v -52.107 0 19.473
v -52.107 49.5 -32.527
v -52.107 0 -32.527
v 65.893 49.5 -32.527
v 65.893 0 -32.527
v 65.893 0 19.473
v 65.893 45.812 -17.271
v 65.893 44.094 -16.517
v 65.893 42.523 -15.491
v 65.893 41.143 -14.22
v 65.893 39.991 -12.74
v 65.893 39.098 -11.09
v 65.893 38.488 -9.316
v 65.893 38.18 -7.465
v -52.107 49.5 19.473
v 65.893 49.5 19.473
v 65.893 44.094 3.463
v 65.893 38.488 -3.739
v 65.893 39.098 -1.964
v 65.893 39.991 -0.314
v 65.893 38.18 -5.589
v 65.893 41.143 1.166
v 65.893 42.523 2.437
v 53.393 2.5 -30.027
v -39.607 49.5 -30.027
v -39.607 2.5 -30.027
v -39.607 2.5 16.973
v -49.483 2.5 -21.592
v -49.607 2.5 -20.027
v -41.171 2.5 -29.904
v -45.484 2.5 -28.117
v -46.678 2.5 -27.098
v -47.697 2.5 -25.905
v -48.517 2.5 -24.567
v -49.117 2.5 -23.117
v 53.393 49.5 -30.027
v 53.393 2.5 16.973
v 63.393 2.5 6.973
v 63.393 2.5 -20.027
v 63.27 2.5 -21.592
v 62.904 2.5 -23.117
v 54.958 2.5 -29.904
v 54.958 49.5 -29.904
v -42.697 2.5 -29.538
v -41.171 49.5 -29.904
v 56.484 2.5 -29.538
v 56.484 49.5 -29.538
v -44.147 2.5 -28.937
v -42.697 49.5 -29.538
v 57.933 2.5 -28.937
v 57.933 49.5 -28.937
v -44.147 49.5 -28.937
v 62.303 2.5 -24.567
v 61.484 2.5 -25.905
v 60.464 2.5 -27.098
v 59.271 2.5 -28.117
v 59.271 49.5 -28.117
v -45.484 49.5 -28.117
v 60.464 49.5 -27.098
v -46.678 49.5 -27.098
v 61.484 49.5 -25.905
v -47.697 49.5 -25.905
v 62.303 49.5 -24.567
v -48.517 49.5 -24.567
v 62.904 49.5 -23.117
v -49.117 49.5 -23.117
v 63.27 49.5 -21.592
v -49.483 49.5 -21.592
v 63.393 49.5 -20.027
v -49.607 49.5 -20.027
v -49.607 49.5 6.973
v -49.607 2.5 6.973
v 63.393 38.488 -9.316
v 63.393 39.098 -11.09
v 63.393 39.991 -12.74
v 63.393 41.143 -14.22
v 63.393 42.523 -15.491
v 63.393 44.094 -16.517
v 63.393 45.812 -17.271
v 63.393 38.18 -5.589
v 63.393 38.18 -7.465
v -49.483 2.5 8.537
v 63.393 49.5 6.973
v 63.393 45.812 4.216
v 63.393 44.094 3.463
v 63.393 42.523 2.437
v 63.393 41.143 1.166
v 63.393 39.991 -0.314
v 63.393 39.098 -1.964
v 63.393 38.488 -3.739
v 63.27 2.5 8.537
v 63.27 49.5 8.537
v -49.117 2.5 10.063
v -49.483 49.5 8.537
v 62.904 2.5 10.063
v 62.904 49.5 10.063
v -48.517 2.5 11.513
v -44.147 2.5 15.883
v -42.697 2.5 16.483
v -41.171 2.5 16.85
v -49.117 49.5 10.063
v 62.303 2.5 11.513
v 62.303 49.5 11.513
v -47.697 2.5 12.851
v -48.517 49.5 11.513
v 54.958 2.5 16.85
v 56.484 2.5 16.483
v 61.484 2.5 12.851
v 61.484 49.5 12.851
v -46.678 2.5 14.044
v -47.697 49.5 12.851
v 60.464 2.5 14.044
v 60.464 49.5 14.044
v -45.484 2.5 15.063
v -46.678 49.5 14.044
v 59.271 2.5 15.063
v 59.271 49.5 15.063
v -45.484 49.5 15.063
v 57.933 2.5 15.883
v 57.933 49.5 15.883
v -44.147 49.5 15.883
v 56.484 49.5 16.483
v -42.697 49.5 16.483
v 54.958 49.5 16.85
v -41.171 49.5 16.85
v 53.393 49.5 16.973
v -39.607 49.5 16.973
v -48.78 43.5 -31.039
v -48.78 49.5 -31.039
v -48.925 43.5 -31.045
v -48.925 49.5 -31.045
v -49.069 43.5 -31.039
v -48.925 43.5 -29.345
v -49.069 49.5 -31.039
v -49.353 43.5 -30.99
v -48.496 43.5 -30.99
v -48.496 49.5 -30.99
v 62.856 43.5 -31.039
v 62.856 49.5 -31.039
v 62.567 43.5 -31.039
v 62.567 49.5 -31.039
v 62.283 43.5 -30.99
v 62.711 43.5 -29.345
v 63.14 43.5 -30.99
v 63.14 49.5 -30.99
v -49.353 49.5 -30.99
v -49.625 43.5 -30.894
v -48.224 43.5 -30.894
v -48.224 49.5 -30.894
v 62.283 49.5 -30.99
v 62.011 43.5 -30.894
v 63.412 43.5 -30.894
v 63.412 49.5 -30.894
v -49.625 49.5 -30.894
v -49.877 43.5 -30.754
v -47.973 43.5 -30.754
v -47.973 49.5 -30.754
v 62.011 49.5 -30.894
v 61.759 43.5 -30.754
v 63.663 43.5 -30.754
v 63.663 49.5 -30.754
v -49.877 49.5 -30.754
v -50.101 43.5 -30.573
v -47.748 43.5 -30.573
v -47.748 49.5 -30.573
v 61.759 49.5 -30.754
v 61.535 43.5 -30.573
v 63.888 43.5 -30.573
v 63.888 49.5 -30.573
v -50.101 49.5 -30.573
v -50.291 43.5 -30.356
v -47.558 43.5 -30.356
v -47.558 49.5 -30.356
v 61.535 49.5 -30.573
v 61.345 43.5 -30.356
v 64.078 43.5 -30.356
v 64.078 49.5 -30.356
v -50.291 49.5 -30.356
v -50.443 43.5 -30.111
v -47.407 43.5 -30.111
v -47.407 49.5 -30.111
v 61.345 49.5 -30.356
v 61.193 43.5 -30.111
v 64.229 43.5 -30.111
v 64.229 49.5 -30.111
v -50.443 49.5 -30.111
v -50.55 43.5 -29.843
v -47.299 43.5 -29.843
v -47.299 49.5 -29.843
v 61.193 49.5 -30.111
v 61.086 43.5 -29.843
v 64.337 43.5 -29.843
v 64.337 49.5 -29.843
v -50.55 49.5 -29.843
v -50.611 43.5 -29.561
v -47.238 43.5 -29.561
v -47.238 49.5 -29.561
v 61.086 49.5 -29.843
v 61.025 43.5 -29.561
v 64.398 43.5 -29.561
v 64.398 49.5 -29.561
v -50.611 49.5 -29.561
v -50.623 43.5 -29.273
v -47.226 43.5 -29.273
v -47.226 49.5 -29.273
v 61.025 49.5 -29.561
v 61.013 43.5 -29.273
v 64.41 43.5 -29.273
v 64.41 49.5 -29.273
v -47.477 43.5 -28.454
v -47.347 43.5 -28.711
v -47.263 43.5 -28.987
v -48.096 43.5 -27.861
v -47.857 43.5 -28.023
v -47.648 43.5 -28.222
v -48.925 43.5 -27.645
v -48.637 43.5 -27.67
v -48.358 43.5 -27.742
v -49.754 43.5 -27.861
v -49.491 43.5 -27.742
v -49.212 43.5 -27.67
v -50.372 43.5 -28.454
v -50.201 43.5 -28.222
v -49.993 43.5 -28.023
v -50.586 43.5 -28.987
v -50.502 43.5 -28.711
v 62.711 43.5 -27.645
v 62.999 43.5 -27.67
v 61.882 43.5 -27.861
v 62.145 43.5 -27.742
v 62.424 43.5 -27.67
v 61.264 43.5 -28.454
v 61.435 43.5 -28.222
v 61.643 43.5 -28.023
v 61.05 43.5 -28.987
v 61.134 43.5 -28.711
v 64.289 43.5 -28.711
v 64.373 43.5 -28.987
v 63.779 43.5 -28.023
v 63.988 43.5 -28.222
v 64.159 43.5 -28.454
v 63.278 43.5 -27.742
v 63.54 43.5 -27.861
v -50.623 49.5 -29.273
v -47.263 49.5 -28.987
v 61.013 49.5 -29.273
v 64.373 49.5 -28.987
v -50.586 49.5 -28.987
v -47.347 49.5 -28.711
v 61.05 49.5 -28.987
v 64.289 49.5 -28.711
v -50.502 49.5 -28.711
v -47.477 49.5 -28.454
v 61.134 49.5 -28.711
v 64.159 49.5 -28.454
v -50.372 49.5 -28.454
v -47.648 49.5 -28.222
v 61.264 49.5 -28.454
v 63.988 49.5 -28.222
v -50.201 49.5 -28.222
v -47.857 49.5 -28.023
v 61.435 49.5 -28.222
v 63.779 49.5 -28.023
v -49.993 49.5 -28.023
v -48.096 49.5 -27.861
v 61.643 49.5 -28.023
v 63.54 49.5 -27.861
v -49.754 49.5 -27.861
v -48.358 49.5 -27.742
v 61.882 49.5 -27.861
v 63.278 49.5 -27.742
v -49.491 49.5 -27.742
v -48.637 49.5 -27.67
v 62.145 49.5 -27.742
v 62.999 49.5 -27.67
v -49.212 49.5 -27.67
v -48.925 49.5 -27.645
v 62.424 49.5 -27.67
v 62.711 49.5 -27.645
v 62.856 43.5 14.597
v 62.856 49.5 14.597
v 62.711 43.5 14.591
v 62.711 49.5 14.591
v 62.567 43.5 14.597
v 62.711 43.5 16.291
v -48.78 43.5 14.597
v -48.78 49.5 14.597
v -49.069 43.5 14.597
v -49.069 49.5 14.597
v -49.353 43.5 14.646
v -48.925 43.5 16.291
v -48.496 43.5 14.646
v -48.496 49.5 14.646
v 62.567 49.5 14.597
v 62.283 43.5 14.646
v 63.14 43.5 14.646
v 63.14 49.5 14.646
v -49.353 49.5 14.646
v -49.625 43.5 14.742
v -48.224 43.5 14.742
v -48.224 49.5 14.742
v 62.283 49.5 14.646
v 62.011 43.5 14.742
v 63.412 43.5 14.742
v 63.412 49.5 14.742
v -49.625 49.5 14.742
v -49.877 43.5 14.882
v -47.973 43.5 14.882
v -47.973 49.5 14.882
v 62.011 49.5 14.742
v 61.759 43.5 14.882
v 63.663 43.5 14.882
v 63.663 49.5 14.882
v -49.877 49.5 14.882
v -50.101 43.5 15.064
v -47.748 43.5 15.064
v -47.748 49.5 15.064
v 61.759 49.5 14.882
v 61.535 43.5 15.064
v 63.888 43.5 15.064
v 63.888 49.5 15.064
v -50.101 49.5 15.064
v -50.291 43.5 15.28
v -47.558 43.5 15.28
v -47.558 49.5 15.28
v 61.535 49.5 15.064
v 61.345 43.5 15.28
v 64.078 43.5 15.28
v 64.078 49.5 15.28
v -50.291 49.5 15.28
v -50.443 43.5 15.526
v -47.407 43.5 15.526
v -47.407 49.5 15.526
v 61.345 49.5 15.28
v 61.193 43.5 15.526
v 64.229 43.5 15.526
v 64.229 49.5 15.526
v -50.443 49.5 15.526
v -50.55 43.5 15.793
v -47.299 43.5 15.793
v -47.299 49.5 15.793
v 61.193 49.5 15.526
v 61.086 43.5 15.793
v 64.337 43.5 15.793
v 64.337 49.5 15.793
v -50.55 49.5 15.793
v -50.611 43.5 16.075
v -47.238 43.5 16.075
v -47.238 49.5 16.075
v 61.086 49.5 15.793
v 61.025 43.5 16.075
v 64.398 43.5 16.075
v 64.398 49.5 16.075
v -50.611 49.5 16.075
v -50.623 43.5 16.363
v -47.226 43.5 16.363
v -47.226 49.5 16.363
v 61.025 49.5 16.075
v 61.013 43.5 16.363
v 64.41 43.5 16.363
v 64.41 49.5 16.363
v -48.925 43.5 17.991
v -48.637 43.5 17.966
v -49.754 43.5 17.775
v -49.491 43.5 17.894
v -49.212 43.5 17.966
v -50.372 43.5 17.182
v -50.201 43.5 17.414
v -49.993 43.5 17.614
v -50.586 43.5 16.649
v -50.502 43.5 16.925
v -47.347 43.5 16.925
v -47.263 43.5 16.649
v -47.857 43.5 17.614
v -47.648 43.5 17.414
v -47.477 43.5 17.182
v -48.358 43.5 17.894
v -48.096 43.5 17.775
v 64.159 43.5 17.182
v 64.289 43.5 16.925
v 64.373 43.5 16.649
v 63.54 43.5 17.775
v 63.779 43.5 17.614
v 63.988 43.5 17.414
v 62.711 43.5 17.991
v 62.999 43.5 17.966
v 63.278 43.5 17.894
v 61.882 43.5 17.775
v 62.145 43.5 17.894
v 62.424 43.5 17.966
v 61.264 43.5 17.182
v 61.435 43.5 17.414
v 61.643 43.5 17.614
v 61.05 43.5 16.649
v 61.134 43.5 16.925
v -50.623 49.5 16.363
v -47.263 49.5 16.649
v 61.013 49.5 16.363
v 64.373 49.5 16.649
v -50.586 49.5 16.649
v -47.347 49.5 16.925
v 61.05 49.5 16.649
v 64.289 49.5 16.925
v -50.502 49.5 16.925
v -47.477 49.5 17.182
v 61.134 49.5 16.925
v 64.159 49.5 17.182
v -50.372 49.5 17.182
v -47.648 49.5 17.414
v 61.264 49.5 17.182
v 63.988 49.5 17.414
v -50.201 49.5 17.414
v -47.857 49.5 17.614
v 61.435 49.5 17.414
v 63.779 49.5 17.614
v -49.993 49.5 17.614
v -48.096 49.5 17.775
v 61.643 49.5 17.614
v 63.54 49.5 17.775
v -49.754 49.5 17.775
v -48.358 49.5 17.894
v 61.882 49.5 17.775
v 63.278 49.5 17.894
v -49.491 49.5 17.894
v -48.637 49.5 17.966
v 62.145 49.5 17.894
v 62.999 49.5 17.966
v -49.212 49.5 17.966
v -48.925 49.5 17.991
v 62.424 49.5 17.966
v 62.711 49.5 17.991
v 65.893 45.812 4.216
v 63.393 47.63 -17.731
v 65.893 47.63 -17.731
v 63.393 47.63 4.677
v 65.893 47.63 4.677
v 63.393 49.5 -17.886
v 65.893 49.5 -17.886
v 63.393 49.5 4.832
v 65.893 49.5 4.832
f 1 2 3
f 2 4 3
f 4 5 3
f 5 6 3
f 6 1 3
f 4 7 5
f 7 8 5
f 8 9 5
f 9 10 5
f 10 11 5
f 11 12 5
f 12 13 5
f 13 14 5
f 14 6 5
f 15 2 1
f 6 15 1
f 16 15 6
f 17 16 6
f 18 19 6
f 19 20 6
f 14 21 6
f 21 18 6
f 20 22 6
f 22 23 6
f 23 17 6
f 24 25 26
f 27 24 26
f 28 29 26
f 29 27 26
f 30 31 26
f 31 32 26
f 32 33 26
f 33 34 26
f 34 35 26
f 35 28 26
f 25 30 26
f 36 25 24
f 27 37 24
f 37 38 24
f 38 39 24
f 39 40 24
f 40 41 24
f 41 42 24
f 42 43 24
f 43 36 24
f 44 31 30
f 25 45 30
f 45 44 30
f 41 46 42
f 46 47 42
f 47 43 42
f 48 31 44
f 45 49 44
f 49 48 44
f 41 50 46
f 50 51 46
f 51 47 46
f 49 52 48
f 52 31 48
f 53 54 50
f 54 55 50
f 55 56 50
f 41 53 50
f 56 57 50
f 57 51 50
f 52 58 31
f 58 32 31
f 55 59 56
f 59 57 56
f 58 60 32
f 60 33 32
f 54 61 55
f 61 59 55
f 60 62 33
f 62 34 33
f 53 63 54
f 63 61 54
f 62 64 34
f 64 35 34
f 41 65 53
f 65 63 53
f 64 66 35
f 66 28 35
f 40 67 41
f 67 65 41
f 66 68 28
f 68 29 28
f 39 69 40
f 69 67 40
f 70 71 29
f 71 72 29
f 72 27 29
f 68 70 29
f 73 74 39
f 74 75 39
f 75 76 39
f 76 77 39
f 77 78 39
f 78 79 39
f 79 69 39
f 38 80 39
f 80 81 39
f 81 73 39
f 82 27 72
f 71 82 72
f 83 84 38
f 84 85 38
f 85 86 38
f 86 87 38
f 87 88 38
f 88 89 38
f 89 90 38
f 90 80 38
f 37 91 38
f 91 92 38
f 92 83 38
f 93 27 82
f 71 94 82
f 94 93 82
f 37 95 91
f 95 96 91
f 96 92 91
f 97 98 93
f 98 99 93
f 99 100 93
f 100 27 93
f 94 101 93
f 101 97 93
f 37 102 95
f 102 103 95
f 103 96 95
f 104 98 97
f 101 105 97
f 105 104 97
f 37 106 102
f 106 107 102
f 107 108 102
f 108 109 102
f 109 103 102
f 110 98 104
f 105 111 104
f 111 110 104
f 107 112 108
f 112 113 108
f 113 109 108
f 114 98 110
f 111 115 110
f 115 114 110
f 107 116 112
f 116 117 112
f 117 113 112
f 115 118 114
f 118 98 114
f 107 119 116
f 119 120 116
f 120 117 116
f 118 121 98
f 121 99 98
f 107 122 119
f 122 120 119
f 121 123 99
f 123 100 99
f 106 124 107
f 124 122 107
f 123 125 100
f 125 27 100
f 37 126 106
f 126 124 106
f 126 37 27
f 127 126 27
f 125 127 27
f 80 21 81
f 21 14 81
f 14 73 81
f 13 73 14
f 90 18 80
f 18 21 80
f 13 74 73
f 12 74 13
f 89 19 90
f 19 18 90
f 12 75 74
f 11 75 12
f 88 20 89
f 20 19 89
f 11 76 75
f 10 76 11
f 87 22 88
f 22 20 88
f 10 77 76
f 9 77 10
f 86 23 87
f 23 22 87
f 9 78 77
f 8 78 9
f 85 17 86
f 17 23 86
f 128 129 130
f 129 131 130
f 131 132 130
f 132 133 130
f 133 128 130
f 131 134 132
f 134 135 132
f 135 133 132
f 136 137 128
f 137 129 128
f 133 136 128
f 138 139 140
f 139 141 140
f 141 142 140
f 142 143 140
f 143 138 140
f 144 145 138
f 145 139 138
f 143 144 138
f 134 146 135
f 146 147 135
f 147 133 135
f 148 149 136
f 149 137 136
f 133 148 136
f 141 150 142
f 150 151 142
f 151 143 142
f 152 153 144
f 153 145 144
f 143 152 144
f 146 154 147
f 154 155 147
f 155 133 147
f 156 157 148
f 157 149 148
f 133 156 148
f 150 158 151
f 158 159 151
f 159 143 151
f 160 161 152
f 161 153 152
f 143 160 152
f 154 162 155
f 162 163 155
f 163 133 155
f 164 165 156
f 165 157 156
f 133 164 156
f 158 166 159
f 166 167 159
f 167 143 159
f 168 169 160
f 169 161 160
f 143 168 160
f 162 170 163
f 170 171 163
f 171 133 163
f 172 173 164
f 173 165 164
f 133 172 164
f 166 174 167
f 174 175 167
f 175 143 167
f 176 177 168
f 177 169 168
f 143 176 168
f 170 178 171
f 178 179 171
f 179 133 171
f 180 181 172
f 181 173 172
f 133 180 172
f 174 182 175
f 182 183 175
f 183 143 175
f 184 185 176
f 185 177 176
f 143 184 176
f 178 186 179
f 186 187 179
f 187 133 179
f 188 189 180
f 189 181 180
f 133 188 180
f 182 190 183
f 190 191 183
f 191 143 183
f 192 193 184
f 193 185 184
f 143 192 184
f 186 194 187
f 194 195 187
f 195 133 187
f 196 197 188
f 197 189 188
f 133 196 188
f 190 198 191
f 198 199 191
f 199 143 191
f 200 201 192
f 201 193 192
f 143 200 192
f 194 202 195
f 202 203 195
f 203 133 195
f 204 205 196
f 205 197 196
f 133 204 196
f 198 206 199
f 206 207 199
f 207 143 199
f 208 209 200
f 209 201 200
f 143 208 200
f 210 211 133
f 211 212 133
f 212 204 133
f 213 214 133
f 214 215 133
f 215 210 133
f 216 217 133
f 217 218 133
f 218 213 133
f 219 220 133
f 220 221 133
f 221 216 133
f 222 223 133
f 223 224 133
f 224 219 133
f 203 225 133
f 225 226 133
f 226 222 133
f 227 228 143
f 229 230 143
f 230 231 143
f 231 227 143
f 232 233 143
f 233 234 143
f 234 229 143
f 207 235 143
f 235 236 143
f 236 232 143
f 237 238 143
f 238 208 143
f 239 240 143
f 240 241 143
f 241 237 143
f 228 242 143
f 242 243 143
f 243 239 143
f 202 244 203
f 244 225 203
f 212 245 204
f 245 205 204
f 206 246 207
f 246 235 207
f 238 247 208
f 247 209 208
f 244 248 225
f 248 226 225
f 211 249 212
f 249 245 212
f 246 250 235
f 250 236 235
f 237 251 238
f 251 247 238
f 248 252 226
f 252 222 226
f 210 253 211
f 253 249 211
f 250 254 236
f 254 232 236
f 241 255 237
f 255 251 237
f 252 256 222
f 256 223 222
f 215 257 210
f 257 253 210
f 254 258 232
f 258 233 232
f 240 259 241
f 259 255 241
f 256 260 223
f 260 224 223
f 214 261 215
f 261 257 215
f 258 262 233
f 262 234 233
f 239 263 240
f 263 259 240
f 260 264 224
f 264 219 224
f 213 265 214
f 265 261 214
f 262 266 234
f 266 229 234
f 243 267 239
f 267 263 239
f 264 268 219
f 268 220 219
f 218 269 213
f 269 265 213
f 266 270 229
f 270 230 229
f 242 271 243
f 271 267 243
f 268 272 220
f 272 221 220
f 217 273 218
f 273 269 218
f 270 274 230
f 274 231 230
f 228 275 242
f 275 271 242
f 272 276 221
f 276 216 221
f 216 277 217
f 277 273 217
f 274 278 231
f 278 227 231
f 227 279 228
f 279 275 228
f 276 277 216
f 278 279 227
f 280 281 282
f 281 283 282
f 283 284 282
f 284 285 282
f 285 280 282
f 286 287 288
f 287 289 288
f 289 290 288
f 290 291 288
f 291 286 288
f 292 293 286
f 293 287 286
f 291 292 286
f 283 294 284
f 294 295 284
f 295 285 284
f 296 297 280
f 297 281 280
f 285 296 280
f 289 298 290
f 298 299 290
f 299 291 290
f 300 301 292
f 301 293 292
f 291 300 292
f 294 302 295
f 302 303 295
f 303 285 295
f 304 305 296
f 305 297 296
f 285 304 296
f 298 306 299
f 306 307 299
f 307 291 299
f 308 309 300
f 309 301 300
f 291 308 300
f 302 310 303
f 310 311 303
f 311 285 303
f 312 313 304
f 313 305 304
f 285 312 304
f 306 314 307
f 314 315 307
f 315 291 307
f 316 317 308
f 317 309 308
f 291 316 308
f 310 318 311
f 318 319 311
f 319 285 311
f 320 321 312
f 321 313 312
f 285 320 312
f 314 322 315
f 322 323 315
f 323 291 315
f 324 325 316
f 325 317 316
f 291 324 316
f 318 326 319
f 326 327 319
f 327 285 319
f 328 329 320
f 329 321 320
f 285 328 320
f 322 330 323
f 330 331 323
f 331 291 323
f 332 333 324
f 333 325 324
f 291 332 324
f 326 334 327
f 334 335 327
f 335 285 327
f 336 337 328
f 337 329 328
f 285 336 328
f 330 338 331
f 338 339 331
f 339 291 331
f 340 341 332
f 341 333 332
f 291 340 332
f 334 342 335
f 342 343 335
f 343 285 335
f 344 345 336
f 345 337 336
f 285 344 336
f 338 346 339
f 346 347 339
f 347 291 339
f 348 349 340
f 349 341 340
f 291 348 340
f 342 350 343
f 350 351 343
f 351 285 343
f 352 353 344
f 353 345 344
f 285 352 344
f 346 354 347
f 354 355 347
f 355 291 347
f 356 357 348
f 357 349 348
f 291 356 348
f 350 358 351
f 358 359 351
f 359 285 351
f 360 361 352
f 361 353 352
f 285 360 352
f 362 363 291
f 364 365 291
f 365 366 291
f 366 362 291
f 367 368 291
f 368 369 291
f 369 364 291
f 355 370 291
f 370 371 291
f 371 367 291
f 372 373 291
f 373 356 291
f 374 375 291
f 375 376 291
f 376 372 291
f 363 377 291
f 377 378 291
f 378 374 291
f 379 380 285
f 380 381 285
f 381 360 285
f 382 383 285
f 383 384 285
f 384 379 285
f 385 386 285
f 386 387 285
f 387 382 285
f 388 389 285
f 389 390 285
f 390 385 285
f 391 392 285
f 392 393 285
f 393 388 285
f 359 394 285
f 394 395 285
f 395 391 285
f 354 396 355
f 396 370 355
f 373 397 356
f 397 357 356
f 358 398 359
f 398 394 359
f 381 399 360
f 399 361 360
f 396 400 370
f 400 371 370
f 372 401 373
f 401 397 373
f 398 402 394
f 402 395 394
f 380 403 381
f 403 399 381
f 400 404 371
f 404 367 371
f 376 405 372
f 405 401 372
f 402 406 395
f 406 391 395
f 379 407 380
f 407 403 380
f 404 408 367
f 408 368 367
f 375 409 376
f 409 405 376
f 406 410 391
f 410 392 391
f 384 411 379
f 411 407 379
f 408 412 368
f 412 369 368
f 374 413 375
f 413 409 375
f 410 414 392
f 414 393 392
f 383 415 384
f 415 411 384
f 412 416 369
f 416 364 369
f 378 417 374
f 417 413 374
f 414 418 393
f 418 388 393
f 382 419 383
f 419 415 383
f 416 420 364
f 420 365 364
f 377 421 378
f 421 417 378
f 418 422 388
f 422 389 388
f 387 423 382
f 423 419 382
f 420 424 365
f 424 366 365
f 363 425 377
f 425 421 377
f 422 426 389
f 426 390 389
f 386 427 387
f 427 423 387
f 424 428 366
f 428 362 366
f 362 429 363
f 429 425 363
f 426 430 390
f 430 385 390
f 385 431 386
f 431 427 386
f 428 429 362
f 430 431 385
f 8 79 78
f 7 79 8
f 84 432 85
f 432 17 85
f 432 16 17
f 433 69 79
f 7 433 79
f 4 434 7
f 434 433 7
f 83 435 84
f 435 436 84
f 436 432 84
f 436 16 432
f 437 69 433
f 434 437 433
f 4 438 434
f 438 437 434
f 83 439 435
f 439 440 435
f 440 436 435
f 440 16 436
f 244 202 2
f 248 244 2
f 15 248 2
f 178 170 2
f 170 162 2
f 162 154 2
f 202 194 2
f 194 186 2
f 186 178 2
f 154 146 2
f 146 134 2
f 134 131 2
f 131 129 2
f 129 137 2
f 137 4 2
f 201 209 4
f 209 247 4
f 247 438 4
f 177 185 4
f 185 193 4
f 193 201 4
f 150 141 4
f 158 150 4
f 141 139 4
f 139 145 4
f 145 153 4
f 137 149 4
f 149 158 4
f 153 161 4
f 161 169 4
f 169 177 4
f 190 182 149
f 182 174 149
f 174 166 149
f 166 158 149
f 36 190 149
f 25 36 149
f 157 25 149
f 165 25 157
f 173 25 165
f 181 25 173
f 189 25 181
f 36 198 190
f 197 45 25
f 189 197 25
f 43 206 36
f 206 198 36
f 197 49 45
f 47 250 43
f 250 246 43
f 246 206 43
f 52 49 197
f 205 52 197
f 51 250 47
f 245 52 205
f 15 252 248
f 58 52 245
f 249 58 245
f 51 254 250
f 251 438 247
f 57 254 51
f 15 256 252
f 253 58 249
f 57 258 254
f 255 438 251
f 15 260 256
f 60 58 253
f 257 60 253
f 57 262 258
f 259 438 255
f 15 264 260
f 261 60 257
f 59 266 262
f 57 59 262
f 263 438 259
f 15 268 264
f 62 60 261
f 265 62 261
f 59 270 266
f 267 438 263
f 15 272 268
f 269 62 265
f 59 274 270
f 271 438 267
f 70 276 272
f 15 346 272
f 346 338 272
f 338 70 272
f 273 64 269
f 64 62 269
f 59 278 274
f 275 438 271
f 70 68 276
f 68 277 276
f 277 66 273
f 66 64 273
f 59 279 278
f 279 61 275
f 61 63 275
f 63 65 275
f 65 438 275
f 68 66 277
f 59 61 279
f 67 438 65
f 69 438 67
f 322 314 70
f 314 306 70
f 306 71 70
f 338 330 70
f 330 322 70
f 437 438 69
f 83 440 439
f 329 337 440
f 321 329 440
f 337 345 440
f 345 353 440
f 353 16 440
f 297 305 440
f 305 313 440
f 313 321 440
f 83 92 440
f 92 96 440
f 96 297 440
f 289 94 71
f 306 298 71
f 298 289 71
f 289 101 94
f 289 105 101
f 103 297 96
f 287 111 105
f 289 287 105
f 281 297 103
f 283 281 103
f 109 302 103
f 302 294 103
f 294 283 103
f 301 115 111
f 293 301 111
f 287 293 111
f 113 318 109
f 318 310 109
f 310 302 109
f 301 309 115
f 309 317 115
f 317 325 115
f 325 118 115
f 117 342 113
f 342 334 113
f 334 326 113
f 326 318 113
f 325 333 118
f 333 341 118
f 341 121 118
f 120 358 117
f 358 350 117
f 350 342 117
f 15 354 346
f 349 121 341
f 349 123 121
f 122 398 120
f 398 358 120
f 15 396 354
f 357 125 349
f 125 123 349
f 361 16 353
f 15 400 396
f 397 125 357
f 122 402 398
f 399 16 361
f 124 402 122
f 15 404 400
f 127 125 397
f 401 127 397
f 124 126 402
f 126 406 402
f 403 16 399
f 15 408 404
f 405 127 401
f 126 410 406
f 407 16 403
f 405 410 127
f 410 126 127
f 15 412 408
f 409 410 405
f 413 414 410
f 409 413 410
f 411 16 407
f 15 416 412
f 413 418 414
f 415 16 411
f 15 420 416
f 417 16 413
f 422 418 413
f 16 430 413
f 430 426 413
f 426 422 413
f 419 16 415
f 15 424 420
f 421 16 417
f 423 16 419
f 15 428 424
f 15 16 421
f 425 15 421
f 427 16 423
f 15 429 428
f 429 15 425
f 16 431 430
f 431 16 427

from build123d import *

# Parameters (mm, degrees)
SKETCH1_W           = 118
SKETCH1_H           = 52
BOSS_EXTRUDE1_DEPTH = 2.5
SKETCH2_W           = 118
SKETCH2_H           = 52
SKETCH2_W_2         = 113
SKETCH2_H_2         = 47
EXTRUDE_THIN1_DEPTH = 47
FILLET1_R           = 10
CUT_EXTRUDE1_DEPTH  = 42.5
SKETCH5_R           = 1.7
CUT_EXTRUDE2_DEPTH  = 6


with BuildPart() as part:
    # Sketch1 → Boss-Extrude1 (new body)
    with BuildSketch(Plane(origin=(0, 0, 0), x_dir=(1, 0, 0), z_dir=(0, 1, 0))):
        with Locations((6.893384754, 6.527166983)):
            Rectangle(SKETCH1_W, SKETCH1_H)
    extrude(amount=BOSS_EXTRUDE1_DEPTH)

    # Sketch2 → Extrude-Thin1 (add)
    with BuildSketch(Plane(origin=(0, 2.5, 0), x_dir=(1, 0, 0), z_dir=(0, 1, 0))):
        with Locations((6.893384754, 6.527166983)):
            Rectangle(SKETCH2_W, SKETCH2_H)
        with Locations((6.893384754, 6.527166983)):
            Rectangle(SKETCH2_W_2, SKETCH2_H_2, mode=Mode.SUBTRACT)
    extrude(amount=EXTRUDE_THIN1_DEPTH)

    # Fillet1
    fillet1_edges = [part.edges().sort_by_distance(p)[0] for p in [
        (-49.606615246, 26, 16.972833017),
        (63.393384754, 26, 16.972833017),
        (63.393384754, 26, -30.027166983),
        (-49.606615246, 26, -30.027166983),
    ]]
    fillet(fillet1_edges, radius=FILLET1_R)

    # Sketch3 → Cut-Extrude1 (cut)
    with BuildSketch(Plane(origin=(65.893384754, 0, 0), x_dir=(0, 0, -1), z_dir=(1, 0, 0))):
        with BuildLine():
            Line((-4.831942317, 49.5), (17.886276283, 49.5))
            ThreePointArc((17.886276283, 49.5), (6.527166983, 38.1408907), (-4.831942317, 49.5))
        make_face()
    extrude(amount=-CUT_EXTRUDE1_DEPTH, mode=Mode.SUBTRACT)

    # Sketch5 → Cut-Extrude2 (cut)
    with BuildSketch(Plane(origin=(0, 49.5, 0), x_dir=(1, 0, 0), z_dir=(0, 1, 0))):
        with Locations(Location((-48.924634731, -16.290852502, 0), (0, 0, 270))):
            Circle(SKETCH5_R)
        with Locations(Location((-48.924634731, 29.345186468, 0), (0, 0, 90))):
            Circle(SKETCH5_R)
        with Locations(Location((62.711404239, -16.290852502, 0), (0, 0, 90))):
            Circle(SKETCH5_R)
        with Locations(Location((62.711404239, 29.345186468, 0), (0, 0, 270))):
            Circle(SKETCH5_R)
    extrude(amount=-CUT_EXTRUDE2_DEPTH, mode=Mode.SUBTRACT)


solid = part.part
